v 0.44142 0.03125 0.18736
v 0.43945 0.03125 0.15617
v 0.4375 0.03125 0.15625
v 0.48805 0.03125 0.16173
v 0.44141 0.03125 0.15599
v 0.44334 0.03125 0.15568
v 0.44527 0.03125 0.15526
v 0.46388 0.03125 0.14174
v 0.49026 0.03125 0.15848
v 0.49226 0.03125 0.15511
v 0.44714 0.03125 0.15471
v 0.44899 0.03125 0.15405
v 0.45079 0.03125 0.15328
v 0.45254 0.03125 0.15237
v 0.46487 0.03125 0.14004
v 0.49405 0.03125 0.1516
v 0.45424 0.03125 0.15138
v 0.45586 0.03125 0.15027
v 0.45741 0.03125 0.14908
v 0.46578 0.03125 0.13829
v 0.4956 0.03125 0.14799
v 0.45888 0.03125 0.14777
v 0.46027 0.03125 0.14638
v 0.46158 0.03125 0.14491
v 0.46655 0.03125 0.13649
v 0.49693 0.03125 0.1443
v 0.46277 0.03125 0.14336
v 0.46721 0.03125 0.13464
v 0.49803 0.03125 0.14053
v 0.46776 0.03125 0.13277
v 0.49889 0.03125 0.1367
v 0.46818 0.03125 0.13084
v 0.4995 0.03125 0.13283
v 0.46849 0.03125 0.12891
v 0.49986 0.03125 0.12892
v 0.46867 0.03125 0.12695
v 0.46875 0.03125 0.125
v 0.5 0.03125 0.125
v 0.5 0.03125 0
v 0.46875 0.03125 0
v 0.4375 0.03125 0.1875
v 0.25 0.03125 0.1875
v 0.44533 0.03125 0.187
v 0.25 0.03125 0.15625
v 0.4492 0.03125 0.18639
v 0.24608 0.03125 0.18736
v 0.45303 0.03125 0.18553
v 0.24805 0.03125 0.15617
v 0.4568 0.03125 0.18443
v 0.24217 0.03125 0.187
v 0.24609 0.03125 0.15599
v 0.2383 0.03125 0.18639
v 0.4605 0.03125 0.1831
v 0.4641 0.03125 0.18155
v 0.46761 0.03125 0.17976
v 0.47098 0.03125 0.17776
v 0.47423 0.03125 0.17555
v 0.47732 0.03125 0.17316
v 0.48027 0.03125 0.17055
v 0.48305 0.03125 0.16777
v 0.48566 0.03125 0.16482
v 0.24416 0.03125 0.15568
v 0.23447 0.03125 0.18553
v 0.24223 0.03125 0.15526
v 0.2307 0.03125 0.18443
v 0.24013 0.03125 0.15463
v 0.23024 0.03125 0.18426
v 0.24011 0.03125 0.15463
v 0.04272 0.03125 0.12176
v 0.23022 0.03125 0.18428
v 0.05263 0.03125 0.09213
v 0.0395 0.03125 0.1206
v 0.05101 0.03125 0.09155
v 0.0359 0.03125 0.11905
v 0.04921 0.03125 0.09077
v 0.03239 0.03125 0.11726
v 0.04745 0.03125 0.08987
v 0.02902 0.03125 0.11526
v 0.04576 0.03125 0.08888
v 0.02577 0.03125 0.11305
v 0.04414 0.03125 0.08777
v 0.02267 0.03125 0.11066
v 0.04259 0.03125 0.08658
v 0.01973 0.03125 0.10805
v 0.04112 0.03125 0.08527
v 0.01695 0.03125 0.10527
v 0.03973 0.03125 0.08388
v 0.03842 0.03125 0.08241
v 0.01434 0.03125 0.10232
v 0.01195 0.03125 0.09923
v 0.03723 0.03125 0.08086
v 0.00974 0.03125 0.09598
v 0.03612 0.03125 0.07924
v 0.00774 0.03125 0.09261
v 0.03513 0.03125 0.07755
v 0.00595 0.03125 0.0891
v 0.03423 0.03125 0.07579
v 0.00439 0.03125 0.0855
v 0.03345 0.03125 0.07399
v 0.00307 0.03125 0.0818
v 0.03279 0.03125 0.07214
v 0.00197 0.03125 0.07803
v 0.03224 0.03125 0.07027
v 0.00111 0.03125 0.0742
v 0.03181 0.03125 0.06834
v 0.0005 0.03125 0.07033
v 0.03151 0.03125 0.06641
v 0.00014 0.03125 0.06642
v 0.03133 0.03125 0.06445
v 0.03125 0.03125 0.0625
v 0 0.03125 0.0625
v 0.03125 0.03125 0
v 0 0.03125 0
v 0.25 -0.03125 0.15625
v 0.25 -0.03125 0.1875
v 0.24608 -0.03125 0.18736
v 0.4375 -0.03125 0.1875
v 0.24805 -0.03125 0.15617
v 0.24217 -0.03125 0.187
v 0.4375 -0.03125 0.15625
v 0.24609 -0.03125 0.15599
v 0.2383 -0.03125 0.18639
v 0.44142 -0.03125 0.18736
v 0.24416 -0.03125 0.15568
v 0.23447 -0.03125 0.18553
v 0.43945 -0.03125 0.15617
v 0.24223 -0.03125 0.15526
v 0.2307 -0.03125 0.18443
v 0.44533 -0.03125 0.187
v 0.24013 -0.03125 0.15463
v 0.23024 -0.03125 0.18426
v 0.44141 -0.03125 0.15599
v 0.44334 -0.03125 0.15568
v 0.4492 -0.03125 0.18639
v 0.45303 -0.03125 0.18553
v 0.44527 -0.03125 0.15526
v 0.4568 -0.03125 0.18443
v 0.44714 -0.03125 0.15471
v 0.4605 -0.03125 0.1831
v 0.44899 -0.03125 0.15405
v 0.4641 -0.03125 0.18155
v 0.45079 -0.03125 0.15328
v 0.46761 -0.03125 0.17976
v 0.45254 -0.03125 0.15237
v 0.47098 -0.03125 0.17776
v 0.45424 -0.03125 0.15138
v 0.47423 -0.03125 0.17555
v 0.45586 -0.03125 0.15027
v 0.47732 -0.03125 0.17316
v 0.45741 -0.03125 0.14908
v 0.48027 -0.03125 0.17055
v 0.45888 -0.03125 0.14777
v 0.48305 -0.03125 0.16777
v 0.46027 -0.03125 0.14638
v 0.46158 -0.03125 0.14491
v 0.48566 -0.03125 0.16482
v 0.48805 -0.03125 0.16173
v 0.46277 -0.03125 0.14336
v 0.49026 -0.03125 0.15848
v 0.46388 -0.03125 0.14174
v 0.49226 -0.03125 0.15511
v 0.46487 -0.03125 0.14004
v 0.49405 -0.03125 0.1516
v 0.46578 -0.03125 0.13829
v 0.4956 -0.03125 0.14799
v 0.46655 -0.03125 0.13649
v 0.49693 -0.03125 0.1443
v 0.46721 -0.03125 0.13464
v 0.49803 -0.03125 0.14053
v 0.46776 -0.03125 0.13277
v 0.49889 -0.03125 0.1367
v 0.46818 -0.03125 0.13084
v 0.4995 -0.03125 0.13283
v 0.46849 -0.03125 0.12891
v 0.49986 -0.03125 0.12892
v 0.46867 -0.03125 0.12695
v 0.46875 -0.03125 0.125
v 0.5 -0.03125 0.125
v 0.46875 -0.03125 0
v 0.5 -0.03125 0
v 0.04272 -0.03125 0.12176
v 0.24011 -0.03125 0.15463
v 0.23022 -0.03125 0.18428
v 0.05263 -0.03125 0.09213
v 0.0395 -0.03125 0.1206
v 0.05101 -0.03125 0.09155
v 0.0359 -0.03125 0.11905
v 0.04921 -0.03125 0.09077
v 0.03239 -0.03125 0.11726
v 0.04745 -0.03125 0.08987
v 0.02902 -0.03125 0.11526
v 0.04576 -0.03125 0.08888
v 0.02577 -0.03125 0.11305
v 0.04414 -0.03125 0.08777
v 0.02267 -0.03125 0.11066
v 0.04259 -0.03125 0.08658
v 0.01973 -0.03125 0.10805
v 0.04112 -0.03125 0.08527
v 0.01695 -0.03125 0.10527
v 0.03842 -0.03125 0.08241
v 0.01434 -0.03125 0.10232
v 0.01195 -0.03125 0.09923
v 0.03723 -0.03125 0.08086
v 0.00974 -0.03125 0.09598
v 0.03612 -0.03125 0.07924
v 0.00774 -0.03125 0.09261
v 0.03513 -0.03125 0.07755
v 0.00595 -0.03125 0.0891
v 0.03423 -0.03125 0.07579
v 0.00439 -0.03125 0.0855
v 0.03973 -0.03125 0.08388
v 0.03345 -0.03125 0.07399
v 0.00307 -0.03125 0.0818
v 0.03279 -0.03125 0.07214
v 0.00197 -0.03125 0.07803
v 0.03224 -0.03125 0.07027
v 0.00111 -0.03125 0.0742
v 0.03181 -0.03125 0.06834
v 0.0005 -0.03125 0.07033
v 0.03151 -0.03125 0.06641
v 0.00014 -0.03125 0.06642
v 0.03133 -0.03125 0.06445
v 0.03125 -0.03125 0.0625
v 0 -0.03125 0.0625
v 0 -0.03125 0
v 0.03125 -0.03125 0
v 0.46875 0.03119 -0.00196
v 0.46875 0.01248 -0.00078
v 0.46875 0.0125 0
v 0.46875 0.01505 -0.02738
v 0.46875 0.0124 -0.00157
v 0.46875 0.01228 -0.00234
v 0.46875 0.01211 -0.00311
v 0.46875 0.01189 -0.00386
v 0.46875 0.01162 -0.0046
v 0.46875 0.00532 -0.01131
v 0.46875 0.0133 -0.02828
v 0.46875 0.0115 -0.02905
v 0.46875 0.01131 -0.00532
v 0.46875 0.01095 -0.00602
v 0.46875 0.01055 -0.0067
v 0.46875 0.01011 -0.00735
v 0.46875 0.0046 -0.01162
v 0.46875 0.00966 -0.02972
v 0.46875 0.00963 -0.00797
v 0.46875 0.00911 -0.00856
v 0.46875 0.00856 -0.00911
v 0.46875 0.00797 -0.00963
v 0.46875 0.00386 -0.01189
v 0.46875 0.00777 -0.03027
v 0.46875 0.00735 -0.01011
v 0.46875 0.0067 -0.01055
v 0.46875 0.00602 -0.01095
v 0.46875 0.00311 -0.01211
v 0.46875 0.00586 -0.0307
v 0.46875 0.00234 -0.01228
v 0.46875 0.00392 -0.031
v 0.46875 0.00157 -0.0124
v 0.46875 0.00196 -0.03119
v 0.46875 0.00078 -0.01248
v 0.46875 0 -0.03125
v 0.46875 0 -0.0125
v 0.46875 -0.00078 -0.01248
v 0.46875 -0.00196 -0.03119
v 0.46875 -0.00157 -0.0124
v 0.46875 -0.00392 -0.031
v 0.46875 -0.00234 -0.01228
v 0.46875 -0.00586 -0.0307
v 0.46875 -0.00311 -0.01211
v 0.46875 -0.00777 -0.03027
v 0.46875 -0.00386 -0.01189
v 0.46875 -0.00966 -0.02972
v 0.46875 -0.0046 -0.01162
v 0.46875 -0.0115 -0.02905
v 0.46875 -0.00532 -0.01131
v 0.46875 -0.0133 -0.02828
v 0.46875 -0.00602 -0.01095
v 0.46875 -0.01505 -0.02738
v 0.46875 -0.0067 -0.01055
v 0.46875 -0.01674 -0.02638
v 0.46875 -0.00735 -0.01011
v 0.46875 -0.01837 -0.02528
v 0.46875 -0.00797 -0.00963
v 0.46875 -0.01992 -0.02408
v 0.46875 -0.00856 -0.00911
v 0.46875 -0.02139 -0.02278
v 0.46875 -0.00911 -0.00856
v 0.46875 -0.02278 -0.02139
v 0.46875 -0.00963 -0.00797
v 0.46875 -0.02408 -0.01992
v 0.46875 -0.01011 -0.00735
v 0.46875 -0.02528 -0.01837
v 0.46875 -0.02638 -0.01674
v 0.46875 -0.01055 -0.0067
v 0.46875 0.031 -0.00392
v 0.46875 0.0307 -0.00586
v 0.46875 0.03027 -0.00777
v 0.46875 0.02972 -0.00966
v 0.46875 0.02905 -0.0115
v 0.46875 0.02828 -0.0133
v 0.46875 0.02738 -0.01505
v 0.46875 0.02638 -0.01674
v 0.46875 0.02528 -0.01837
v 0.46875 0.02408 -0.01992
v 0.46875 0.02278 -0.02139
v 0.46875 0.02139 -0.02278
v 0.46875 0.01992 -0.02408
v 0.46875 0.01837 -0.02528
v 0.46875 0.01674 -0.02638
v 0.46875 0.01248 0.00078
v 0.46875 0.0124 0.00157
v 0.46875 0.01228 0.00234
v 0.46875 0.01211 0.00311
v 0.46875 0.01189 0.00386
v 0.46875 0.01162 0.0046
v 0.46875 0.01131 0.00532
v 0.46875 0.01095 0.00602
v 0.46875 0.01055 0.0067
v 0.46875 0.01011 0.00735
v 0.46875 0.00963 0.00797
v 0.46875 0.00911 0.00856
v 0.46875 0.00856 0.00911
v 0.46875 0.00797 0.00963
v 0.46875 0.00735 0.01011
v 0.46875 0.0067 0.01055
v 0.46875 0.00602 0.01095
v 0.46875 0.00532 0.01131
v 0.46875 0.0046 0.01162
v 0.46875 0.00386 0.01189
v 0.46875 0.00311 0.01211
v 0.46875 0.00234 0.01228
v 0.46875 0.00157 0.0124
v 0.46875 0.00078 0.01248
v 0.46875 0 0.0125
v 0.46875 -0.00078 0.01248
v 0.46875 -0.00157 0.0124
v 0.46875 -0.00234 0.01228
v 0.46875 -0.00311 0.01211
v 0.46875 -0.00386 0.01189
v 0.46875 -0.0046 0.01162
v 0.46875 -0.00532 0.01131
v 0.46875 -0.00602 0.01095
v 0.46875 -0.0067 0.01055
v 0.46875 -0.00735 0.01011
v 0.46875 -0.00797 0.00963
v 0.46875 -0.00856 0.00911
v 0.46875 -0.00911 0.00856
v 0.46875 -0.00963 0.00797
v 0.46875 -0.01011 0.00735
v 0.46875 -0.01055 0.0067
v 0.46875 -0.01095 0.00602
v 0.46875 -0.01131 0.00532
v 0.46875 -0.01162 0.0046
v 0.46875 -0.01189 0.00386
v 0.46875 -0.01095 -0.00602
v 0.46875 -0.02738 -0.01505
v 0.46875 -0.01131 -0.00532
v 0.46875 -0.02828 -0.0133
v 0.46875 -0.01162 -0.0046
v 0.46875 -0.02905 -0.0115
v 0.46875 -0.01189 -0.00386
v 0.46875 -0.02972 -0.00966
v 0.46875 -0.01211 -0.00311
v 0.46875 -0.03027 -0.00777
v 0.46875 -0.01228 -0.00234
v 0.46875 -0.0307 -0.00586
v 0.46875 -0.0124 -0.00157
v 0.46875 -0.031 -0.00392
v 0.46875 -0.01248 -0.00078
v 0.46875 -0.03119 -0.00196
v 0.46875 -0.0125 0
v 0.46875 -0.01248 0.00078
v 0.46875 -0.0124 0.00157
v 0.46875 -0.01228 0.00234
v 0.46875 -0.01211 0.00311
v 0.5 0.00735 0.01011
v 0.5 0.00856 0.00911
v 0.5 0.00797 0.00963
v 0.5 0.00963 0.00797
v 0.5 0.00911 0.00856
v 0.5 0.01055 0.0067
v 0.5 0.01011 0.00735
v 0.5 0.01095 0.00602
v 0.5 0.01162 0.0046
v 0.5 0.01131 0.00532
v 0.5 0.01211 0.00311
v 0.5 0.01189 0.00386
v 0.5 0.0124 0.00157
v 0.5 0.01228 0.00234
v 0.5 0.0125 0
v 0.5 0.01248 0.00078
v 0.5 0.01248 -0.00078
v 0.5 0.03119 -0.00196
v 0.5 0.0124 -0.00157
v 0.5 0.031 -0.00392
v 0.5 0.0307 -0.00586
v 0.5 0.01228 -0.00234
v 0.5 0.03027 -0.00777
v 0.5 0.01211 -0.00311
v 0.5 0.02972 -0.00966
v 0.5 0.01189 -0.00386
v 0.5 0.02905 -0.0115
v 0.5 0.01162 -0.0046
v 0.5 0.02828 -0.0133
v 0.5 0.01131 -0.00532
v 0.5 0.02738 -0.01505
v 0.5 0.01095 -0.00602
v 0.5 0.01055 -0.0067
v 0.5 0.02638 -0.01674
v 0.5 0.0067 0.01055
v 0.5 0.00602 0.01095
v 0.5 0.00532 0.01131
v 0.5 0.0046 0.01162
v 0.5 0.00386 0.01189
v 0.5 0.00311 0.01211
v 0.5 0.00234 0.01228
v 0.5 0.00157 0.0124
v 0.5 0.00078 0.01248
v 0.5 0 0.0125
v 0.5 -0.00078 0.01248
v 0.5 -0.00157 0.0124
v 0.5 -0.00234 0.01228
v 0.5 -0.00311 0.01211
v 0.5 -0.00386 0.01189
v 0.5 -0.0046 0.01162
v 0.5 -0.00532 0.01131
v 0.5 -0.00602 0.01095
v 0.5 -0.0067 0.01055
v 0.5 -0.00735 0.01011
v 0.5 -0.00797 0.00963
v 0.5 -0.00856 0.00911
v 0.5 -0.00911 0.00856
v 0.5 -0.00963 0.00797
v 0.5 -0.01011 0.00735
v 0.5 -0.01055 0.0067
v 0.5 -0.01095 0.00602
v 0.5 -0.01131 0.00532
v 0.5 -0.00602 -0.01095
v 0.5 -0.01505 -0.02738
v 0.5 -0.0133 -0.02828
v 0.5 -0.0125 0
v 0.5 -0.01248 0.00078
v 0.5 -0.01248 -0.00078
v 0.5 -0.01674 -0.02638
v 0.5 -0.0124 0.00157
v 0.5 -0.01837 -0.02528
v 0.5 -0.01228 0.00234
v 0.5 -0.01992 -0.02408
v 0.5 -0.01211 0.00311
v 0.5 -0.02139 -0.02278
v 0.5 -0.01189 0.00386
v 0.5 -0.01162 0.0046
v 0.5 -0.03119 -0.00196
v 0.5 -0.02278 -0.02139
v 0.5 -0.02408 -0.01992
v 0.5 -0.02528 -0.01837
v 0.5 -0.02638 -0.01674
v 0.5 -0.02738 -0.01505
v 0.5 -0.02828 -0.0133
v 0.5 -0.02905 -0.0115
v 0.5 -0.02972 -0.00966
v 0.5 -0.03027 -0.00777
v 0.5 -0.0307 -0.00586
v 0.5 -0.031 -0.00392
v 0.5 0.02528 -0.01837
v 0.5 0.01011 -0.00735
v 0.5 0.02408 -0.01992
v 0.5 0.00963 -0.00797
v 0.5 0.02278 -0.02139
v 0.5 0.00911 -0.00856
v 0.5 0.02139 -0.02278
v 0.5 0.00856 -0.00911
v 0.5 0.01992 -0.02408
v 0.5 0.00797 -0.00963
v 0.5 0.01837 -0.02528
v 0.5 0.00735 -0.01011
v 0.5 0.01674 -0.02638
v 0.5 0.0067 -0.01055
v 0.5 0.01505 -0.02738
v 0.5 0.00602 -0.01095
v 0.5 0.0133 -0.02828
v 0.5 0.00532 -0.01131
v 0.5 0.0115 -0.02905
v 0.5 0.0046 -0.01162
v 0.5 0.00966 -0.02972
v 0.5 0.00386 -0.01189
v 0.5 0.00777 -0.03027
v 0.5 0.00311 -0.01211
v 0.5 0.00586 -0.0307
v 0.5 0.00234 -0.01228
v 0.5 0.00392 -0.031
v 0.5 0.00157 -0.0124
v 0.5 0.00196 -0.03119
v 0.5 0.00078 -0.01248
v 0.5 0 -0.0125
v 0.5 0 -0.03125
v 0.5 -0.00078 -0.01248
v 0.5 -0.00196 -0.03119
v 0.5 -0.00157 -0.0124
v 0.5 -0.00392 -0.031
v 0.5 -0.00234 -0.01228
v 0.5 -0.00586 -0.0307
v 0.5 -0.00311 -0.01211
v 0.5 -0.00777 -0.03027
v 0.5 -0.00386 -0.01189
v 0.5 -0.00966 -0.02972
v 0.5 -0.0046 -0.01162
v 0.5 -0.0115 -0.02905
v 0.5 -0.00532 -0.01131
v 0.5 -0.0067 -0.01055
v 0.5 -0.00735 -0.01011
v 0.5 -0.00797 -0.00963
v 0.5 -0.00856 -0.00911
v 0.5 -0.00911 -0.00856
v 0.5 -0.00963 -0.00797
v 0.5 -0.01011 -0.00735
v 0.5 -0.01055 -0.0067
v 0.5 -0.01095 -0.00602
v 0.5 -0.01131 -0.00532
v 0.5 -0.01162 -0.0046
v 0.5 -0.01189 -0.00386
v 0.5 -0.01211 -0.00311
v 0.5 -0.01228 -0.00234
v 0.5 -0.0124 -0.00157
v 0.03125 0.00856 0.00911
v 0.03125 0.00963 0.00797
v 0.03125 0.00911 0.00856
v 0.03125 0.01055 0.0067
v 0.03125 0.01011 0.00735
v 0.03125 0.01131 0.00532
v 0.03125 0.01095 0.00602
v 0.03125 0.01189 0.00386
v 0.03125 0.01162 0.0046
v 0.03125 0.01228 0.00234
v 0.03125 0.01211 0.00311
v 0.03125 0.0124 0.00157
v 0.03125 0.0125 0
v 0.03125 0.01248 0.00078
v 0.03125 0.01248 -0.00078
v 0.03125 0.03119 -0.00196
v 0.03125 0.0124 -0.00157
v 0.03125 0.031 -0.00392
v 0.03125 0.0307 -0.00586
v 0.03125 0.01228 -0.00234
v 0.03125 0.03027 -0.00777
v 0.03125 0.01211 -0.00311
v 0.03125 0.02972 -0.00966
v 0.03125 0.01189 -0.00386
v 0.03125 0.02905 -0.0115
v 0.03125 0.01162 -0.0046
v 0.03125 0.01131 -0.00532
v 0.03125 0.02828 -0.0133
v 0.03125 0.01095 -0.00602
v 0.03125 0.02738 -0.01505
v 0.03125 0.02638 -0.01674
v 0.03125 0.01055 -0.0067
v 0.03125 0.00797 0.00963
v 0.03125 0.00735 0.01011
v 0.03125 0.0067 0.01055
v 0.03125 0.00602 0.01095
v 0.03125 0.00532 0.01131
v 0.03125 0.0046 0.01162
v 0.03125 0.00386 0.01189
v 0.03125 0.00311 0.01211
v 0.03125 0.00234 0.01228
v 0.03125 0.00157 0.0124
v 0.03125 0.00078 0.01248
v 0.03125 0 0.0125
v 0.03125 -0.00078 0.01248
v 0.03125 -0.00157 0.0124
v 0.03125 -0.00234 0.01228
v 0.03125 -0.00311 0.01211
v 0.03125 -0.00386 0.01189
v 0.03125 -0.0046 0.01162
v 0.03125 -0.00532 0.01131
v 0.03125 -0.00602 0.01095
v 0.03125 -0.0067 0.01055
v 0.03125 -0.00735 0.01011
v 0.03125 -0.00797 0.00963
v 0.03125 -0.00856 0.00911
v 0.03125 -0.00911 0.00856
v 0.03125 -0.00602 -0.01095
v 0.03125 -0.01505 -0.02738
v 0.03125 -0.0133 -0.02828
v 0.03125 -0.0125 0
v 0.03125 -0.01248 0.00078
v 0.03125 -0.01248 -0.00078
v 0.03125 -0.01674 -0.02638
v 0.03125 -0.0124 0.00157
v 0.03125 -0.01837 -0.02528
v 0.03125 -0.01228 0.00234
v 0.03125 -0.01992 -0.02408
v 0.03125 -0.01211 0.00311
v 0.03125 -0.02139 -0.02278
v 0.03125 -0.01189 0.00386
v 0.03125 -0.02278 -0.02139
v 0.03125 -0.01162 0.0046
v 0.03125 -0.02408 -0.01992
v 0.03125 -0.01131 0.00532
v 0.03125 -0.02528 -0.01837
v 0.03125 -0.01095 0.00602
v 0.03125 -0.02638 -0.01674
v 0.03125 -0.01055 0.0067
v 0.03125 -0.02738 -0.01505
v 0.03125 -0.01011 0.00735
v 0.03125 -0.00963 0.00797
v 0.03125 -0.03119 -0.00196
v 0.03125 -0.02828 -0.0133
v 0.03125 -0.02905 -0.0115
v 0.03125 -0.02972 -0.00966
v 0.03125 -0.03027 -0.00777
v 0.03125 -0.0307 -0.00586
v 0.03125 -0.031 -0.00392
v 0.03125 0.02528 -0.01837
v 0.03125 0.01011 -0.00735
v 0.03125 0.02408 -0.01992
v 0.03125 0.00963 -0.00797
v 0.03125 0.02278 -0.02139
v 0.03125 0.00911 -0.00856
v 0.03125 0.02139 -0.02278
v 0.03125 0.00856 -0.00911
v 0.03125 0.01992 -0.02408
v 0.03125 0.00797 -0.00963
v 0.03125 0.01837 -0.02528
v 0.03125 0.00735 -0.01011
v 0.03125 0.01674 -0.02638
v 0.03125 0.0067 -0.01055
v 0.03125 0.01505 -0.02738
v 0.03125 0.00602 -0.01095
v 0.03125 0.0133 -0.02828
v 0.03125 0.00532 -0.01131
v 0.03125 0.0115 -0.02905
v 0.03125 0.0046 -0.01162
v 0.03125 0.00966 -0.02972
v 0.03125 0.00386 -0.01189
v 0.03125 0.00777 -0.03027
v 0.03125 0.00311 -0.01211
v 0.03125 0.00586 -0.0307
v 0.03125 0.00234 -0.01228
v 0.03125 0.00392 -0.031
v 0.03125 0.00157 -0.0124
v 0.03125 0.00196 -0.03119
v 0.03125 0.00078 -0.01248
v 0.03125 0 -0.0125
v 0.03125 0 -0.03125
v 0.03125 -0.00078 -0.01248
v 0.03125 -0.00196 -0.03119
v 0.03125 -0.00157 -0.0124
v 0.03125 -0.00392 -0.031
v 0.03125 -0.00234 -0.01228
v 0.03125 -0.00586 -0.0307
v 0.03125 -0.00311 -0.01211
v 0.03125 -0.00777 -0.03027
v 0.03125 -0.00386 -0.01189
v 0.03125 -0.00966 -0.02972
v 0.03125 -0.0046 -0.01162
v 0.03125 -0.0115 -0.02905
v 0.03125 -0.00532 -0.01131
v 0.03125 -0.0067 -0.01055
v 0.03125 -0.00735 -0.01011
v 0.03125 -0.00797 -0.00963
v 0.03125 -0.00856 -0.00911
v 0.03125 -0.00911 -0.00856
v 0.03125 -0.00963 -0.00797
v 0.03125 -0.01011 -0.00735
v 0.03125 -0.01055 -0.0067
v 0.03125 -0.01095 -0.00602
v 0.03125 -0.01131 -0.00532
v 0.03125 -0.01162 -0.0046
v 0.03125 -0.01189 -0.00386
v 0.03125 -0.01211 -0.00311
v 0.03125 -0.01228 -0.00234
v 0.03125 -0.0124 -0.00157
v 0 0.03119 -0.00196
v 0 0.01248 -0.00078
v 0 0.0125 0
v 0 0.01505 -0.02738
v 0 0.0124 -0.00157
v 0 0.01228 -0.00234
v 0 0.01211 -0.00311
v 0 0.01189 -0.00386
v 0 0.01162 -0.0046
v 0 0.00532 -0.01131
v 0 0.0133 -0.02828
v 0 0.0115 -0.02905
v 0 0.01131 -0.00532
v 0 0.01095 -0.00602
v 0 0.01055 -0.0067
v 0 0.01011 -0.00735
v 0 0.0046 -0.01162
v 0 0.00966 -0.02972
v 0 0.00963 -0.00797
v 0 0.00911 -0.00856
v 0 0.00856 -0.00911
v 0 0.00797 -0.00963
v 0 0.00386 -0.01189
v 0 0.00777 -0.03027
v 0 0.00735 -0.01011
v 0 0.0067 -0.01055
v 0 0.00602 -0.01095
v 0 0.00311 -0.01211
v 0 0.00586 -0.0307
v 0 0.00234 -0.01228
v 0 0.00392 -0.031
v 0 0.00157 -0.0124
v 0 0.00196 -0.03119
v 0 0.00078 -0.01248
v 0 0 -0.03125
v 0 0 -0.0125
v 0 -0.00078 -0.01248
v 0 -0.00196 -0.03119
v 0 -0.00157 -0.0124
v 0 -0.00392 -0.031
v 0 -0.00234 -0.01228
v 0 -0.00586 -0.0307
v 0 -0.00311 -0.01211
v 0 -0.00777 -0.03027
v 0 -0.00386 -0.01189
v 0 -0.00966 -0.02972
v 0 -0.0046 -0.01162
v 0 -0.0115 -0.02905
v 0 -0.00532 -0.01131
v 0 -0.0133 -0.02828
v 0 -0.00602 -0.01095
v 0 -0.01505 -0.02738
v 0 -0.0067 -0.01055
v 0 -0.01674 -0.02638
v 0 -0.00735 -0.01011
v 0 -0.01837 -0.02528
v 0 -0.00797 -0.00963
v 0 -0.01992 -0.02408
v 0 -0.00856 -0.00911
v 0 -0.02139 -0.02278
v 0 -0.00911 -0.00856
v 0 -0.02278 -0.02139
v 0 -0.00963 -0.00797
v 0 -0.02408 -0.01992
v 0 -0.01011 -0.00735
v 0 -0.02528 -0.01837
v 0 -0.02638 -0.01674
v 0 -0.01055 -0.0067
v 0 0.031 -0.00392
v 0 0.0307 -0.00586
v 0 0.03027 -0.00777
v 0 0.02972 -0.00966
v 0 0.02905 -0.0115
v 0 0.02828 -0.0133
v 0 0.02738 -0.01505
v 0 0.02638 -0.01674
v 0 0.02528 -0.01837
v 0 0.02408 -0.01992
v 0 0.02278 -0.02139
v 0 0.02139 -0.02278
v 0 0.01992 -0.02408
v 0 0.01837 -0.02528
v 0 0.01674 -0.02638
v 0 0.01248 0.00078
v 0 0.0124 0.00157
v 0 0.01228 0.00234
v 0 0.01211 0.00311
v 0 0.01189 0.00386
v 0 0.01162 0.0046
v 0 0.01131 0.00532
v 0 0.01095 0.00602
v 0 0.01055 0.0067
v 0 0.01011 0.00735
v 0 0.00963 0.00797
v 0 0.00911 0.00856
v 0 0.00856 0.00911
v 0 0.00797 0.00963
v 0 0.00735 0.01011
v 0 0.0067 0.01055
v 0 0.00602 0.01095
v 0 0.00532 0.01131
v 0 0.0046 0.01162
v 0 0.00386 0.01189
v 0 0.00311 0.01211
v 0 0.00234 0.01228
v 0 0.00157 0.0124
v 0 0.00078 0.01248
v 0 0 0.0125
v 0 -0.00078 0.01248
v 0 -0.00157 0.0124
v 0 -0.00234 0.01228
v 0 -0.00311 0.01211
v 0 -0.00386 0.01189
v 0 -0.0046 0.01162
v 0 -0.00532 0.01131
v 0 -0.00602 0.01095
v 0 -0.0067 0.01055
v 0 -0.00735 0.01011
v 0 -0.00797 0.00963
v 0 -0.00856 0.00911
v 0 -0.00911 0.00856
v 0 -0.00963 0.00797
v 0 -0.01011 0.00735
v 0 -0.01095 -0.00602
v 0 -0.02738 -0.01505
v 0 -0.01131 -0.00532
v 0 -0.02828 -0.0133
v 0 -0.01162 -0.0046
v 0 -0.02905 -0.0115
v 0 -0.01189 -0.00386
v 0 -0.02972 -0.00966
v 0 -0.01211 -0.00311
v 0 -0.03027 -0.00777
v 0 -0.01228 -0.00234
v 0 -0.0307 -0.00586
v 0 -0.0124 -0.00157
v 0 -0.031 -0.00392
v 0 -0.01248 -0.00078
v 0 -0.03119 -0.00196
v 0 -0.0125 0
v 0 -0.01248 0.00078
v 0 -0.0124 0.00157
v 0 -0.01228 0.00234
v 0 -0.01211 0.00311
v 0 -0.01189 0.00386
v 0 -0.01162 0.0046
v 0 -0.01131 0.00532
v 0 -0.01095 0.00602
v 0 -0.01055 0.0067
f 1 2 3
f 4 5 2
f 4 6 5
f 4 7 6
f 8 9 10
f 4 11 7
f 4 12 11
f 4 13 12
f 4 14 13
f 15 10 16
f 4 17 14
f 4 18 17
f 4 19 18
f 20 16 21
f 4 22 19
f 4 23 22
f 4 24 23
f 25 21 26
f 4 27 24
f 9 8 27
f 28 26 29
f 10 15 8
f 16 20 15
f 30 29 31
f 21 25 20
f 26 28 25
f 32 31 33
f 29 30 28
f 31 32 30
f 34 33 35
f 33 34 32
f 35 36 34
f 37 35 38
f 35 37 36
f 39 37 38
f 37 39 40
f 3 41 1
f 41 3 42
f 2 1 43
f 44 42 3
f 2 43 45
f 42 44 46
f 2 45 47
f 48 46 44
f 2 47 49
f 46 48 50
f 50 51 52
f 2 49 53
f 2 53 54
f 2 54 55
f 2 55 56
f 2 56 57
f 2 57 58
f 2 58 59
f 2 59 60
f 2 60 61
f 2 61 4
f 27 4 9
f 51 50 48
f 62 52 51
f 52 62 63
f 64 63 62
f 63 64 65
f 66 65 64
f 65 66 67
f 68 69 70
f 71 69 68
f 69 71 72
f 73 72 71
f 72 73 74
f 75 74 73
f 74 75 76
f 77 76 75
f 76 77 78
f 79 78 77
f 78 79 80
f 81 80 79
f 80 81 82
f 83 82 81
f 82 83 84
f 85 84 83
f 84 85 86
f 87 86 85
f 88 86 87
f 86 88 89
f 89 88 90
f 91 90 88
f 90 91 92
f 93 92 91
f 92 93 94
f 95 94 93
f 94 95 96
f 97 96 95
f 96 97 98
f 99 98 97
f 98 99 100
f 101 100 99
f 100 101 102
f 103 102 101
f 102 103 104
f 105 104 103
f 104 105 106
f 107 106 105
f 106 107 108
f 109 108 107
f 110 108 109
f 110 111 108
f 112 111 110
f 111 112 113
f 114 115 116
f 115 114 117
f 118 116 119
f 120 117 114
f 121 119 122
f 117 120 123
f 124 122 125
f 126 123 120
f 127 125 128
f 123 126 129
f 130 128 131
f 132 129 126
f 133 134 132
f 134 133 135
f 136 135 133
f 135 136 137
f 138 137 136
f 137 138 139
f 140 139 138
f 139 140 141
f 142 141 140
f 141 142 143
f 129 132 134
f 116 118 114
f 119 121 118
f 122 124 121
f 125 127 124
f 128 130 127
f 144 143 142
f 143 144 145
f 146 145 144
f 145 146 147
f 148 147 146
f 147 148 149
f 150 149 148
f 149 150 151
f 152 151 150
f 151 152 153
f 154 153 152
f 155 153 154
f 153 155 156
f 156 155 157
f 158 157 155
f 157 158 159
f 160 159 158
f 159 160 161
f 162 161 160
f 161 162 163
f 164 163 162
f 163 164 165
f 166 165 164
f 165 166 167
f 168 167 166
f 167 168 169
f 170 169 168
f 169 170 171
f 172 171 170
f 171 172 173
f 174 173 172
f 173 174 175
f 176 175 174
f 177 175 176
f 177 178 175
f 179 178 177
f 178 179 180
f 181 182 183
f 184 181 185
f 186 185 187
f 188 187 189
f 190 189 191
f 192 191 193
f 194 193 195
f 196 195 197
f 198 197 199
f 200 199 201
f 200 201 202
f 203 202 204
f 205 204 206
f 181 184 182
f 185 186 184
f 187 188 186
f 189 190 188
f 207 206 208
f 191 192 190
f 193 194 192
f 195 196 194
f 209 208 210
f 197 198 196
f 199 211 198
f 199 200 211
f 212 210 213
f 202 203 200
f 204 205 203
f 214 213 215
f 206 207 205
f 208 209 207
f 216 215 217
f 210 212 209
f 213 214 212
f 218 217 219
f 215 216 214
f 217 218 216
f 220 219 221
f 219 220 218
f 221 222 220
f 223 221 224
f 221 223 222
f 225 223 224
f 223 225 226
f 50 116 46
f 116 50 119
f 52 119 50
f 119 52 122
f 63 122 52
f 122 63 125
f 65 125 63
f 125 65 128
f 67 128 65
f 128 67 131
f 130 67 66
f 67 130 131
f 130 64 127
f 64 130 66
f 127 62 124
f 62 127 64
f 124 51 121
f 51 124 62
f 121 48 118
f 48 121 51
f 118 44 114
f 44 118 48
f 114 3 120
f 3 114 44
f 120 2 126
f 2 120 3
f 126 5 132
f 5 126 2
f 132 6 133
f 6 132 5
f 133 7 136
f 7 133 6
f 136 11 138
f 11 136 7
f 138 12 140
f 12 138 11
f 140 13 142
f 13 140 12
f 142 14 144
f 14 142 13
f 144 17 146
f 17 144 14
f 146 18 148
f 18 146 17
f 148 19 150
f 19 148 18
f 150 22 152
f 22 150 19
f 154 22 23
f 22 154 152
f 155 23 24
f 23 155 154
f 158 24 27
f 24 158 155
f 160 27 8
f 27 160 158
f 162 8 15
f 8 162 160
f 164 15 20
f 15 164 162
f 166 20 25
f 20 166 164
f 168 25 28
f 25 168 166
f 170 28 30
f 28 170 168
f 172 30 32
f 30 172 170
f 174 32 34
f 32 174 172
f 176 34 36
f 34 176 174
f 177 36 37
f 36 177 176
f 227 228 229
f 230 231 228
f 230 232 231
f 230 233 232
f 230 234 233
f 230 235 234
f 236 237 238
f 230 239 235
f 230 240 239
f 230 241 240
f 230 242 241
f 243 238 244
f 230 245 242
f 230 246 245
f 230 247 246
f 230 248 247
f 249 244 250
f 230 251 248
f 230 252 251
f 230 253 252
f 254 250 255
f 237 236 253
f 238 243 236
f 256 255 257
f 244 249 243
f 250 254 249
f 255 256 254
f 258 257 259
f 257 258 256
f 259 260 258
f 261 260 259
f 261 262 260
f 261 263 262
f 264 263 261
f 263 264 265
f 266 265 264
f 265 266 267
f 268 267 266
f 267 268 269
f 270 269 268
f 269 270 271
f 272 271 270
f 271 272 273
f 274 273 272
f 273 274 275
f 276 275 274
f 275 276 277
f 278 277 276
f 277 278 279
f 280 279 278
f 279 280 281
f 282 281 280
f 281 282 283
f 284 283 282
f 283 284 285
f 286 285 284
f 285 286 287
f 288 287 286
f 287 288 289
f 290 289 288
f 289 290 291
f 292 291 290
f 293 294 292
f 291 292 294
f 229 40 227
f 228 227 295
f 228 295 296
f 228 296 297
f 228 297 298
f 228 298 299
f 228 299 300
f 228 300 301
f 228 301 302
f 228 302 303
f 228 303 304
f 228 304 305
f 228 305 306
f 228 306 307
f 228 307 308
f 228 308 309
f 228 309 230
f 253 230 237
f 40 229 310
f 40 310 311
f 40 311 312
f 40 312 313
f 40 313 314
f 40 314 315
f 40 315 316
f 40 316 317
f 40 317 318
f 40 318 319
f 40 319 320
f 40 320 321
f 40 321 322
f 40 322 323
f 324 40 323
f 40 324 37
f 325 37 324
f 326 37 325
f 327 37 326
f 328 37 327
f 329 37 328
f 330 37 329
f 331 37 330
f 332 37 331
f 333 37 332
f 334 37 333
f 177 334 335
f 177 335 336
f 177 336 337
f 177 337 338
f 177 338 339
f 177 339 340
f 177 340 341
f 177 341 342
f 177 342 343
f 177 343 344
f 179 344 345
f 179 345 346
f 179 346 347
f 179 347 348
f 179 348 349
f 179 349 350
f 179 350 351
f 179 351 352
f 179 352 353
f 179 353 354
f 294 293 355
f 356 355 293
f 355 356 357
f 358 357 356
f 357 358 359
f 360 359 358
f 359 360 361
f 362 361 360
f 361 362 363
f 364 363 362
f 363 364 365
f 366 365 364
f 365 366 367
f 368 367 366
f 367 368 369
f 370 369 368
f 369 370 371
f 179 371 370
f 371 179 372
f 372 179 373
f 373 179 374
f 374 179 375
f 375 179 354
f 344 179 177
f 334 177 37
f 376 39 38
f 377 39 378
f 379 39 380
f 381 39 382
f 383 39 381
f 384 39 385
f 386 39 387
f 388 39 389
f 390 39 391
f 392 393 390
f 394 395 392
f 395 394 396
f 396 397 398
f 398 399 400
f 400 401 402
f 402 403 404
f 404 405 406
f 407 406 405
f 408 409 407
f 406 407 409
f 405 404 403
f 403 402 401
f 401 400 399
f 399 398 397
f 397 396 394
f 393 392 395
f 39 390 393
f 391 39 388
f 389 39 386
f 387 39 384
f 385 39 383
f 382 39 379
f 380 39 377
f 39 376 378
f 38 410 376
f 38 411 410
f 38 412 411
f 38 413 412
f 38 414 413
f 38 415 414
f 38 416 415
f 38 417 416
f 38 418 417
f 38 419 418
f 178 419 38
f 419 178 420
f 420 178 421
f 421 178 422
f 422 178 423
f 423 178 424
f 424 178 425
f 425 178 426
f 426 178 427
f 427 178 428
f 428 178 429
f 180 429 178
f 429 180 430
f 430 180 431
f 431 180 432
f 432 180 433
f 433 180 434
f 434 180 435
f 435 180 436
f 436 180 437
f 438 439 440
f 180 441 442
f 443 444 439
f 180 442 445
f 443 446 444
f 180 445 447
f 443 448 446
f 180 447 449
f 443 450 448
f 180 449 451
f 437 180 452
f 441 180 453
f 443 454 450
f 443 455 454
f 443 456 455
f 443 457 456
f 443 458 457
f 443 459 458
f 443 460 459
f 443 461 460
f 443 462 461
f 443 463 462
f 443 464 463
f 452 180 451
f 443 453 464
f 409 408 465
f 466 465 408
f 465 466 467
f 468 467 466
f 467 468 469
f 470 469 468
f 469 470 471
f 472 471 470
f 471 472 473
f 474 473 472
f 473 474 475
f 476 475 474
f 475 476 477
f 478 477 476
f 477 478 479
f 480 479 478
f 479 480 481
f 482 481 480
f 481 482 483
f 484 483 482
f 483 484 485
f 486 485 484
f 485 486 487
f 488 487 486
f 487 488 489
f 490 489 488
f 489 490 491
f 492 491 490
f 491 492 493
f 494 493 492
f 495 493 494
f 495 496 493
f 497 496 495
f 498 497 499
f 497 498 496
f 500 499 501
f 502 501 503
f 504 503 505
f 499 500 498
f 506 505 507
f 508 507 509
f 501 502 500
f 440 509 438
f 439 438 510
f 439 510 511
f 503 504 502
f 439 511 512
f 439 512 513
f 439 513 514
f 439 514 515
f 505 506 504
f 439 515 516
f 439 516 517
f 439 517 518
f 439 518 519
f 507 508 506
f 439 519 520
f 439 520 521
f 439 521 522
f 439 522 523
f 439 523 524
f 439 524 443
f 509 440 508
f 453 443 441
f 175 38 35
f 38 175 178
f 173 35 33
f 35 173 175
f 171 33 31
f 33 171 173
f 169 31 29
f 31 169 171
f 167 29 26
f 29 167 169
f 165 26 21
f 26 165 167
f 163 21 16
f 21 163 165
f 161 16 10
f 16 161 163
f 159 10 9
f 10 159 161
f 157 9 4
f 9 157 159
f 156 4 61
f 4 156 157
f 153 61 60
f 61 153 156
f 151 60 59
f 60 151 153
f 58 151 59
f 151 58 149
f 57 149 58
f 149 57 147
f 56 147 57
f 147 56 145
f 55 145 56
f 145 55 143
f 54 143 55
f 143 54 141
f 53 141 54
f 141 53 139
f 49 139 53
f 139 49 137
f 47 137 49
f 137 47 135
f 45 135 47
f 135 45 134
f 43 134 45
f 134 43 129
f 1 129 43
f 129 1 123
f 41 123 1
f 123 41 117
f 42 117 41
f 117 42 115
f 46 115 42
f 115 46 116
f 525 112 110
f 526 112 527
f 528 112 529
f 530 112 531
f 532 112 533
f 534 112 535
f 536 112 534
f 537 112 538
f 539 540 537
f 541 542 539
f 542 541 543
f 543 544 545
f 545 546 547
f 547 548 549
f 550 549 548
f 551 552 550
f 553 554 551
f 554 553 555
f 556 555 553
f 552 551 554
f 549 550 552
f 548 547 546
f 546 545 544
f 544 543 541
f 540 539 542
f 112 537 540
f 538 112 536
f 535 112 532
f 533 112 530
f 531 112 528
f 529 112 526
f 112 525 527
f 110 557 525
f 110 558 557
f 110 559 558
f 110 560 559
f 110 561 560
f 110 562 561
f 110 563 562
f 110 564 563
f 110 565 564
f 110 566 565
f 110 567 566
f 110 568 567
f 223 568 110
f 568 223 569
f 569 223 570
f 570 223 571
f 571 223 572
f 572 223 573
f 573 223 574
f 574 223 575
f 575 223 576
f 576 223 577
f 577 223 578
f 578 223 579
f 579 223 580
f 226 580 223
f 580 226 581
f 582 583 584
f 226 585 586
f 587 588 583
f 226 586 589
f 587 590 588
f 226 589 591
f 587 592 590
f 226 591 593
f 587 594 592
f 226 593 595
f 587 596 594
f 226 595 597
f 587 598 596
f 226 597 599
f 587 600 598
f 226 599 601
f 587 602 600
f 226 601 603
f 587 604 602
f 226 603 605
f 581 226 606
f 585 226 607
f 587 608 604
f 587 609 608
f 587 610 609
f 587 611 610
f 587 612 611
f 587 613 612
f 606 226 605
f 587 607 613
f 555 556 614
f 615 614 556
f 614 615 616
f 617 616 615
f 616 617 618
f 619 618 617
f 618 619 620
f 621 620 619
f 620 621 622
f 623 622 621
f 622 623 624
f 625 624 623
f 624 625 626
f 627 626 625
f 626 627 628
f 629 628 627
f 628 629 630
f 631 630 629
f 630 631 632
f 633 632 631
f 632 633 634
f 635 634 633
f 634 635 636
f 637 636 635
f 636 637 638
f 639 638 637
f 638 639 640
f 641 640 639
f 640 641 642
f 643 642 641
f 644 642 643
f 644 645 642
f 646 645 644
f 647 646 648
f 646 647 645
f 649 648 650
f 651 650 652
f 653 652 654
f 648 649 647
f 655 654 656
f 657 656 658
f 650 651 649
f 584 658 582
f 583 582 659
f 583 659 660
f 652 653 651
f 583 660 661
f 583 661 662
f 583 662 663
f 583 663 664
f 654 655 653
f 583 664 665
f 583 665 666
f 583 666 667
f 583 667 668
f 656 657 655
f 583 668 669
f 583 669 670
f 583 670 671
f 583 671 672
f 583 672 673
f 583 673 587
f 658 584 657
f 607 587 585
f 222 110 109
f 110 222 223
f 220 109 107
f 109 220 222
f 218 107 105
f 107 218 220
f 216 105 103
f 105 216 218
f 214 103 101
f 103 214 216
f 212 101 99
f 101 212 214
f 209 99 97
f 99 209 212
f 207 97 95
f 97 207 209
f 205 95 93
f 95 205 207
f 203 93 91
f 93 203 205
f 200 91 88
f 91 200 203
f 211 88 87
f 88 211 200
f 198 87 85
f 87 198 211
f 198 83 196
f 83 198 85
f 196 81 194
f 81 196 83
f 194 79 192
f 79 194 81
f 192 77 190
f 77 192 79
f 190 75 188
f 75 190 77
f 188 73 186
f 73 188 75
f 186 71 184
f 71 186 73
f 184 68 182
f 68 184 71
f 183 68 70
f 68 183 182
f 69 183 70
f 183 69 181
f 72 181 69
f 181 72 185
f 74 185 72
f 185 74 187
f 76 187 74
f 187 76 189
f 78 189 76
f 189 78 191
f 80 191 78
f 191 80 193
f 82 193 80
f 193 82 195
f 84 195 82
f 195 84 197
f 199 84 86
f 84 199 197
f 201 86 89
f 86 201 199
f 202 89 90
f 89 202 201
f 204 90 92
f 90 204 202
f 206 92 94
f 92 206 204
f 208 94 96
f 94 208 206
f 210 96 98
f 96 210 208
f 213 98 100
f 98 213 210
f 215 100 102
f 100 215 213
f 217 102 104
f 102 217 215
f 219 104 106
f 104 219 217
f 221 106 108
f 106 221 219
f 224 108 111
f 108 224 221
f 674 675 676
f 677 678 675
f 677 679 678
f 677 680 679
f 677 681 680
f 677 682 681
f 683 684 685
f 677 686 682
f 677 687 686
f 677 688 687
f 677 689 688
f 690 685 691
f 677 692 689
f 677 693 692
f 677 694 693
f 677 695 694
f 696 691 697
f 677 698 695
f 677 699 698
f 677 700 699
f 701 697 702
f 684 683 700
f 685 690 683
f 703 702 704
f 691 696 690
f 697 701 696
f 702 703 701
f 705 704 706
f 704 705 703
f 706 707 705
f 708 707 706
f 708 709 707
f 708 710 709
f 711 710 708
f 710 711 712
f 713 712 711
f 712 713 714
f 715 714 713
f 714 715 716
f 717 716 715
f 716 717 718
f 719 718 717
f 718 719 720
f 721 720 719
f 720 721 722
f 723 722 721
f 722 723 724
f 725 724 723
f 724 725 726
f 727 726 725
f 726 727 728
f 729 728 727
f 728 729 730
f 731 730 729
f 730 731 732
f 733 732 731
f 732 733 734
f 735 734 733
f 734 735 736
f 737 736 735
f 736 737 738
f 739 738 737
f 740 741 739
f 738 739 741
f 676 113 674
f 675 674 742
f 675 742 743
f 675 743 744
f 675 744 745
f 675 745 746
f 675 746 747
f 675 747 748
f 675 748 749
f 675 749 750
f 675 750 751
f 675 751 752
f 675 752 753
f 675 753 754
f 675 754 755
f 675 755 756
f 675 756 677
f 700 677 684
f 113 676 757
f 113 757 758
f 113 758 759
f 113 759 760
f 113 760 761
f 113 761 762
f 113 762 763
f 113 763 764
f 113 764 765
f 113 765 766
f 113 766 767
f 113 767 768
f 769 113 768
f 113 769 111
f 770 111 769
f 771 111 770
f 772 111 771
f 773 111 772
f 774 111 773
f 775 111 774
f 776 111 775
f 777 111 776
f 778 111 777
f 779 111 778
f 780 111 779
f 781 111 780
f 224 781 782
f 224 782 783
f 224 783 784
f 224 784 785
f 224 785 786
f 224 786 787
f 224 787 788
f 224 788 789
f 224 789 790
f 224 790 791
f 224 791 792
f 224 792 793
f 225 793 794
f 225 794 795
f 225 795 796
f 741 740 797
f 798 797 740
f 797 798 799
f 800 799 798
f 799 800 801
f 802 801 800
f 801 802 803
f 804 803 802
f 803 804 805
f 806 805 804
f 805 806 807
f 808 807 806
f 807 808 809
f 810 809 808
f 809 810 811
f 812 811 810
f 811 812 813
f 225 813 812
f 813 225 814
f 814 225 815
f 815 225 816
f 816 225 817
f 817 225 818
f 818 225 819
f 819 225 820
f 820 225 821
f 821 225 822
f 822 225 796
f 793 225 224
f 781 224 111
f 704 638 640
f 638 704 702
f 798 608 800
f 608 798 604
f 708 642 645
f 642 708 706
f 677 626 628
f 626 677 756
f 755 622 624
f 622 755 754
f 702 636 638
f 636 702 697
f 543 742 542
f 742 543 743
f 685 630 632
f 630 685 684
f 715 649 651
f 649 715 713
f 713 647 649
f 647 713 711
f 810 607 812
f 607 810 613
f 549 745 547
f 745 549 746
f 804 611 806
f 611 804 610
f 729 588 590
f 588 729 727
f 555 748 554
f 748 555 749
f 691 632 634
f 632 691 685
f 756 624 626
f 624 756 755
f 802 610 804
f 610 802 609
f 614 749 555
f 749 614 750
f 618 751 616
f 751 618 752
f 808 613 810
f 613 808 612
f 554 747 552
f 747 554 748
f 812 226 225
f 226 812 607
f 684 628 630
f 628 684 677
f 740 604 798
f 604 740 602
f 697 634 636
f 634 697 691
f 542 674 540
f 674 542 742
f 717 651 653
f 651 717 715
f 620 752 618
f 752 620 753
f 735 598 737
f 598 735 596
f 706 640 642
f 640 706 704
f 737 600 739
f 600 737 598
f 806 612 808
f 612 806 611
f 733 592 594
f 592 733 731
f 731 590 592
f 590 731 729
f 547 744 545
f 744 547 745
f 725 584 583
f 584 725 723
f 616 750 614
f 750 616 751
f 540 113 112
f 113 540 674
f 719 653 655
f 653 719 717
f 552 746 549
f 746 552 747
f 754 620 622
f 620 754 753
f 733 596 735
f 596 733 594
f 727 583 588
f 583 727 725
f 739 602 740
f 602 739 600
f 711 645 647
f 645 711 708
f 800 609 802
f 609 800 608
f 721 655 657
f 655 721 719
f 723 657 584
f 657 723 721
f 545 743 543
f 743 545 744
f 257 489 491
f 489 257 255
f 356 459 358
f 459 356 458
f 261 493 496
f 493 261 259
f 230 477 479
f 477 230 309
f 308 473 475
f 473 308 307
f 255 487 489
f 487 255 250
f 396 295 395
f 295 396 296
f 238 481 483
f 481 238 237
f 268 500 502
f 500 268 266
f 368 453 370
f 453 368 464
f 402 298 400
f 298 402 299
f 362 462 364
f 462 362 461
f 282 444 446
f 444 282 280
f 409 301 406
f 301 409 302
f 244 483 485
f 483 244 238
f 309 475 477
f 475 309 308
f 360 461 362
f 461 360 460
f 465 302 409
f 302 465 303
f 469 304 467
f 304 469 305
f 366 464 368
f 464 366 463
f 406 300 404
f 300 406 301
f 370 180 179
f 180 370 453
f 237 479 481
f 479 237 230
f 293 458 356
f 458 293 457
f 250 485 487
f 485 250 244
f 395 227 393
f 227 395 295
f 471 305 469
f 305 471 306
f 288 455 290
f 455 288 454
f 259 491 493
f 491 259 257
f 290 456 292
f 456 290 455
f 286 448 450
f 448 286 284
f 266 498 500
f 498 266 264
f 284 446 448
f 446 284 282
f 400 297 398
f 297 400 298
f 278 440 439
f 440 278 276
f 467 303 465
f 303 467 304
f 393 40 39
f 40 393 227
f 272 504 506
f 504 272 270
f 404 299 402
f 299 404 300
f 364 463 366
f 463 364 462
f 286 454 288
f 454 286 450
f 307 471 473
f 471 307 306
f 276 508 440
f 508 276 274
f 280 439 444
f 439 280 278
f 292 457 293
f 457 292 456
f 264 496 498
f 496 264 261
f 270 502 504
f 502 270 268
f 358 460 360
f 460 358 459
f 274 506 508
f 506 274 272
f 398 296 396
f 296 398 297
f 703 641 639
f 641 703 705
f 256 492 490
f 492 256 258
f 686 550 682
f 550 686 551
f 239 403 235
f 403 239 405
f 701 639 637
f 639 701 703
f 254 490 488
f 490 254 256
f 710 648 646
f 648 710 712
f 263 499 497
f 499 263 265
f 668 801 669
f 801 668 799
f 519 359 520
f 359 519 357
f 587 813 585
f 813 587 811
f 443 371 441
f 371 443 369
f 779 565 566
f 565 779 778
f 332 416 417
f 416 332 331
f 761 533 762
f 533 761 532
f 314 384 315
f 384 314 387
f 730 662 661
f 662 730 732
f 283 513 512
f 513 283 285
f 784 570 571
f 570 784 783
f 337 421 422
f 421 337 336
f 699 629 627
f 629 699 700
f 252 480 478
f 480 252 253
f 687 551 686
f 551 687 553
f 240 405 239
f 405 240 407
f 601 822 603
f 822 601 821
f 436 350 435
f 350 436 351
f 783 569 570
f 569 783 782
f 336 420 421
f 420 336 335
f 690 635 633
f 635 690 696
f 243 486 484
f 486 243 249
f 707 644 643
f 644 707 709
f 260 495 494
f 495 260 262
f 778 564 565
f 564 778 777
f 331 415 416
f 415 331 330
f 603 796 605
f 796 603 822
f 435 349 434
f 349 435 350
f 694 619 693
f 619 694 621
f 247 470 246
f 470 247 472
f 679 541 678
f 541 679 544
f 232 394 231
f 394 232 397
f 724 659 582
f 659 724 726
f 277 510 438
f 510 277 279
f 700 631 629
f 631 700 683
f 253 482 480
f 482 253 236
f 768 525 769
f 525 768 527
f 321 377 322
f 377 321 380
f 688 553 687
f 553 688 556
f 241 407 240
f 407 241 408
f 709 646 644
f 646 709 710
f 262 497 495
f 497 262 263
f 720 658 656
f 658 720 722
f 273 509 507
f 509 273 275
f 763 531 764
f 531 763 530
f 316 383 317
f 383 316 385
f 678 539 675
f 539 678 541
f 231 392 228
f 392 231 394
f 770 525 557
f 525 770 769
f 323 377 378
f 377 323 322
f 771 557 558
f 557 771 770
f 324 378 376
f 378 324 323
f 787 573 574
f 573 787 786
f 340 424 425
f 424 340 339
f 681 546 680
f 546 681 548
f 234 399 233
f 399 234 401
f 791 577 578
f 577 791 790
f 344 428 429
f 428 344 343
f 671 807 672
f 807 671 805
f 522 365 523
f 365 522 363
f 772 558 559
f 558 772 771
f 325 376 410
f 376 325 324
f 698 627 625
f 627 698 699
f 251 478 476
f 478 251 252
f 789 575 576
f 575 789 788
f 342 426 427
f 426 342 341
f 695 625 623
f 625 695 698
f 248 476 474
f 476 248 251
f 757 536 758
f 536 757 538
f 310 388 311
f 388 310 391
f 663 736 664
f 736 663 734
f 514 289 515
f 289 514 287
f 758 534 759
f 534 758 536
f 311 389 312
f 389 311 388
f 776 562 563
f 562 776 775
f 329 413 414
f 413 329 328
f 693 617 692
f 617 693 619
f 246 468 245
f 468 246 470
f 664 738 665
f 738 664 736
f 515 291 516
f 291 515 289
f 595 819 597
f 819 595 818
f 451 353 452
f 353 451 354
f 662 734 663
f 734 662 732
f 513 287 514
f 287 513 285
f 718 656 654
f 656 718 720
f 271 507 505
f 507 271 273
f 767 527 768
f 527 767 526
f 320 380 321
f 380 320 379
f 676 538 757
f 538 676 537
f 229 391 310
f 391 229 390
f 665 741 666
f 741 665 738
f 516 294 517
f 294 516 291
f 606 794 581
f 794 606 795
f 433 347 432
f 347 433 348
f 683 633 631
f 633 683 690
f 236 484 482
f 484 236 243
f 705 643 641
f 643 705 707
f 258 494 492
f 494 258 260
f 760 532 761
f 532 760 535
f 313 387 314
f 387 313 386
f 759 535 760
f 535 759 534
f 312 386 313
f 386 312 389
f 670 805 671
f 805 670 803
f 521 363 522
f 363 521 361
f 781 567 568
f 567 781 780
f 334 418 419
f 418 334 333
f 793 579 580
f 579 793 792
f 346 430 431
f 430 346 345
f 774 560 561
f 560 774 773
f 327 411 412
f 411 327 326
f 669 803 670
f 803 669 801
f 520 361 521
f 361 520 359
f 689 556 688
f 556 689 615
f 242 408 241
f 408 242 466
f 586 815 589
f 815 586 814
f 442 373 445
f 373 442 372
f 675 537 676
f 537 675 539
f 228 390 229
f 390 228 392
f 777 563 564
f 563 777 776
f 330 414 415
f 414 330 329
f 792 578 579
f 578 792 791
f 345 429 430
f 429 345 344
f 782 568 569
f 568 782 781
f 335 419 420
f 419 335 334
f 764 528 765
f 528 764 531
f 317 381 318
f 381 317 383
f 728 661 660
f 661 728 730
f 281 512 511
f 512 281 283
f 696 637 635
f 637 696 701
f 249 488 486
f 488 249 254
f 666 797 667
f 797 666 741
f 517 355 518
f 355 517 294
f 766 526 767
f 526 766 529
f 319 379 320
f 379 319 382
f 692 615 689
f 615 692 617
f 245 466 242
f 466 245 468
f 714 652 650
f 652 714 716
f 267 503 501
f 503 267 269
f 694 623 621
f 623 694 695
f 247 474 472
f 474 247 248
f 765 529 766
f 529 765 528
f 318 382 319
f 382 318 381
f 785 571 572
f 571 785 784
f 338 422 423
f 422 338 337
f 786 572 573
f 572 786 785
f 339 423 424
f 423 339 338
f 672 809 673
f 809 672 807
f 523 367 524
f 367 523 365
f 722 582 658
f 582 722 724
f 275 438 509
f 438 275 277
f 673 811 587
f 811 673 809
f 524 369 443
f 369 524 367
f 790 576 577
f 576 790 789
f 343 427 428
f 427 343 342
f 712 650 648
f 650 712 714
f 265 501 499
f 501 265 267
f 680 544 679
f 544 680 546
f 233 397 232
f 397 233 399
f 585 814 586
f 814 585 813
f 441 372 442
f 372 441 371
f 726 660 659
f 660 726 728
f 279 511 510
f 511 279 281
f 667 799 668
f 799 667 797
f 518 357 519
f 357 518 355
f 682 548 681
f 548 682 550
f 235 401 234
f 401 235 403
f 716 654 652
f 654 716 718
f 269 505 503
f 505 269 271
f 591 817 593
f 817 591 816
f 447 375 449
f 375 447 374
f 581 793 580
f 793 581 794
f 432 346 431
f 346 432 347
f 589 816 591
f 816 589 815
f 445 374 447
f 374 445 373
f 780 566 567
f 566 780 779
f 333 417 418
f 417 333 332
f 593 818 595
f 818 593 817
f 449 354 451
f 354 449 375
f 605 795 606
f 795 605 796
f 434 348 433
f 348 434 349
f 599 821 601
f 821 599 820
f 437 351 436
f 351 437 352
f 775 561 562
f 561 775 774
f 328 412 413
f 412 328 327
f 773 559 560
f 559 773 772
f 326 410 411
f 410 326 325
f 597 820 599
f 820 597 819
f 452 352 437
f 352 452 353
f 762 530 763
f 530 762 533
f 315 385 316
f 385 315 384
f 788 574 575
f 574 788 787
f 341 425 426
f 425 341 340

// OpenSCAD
// file: MMlib/MMlib/MMlib/circle_strip.scad
//#####################################
// circle_strip
// (c) 2021 - Roie R. Black
//=====================================
$fn = 100;


module circle_strip(r=3, t=0.5) {
  difference() {
    circle(r);
    circle(r-t);
  }
}

circular_strip();
// file: MMlib/MMlib/circular_arc_strip.scad
//#####################################
// circular_arc_strip
// (c) 2021 - Roie R. Black
//=====================================
$fn = 100;
use <MMlib/circle_strip.scad>


module circular_arc_strip(
    r=3,
    start_angle=0, end_angle=270,
    t=0.5
  ) {
  dang = (end_angle-start_angle)/4;
  a0 = start_angle;
  a1 = a0 + dang;
  a2 = a1 + dang;
  a3 = a2 + dang;
  a4 = a3 + dang;
  pr = r * sqrt(2) + 1;
  intersection() {
    polygon([
      [0,0],
      [pr*cos(a0), pr*sin(a0)],
      [pr*cos(a1), pr*sin(a1)],
      [pr*cos(a2), pr*sin(a2)],
      [pr*cos(a3), pr*sin(a3)],
      [pr*cos(a4), pr*sin(a4)],
      [0,0]
    ]);
    circle_strip(r,t);
  }
}

circular_arc_strip();
// file: colors.scad
// colors.scad
// Credit: David Powell, OpenSCAN Forum



//group ABS_<colorname>
//	discription  common 3d printer ABS filament colors
// actual colours may need some tweaking

ABS_Nature =[0.8,0.8,0.8,0.8];
ABS_White =[0.9,0.9,0.9,1];
ABS_Black =[0.1,0.1,0.1,1];
ABS_Red = [0.7,0,0,1];
ABS_Green = [0,0.7,0,1];
ABS_Blue = [0,0,0.7,1];
ABS_Orange =[0.8,0.4,0,1];
ABS_Purple =[0.7,0,0.7,1];
ABS_Brown =[0.6,0.2,0.2,1];
ABS_Glow_Blue =[0,0,.99,1];
ABS_Flurescence_Green =[0,1,0,1];
ABS_Flurescence_Yellow = [0.9,0.9,0,1];

//group PLA_<colorname>
//	discription  common 3d printer PLA filament colors
// actual colours may need some tweaking

PLA_Nature =[0.8,0.8,0.8,0.8];
PLA_White =[0.9,0.9,0.9,1];
PLA_Black =[0.1,0.1,0.1,1];
PLA_Red = [0.7,0,0,1];
PLA_Green = [0,0.7,0,1];
PLA_Blue = [0,0,0.7,1];
PLA_Orange =[0.8,0.4,0,1];
PLA_Purple =[0.7,0,0.7,1];
PLA_Brown =[0.6,0.2,0.2,1];
PLA_Glow_Blue =[0,0,.99,1];
PLA_Flurescence_Green =[0,1,0,1];
PLA_Flurescence_Yellow = [0.9,0.9,0,1];

//group ANODIZED_<colorname>
//	discription  common aluminium anodized colors
// these don't seem to follow normal color tables as the process
// produces a color change difference to the named color
// dew to base metal
// actual colours may need some tweaking

ANODIZED_Red =[0.7,0,0,1];
ANODIZED_Gold =[0.8,0.8,0.0,1];
ANODIZED_Black =[0.1,0.1,0.1,1];
ANODIZED_Blue =[0,0,0.7,1];
ANODIZED_Green =[0,0.5,0,1];
ANODIZED_Gray =[0.4,0.4,0.4,1];
ANODIZED_Dark_Blue =[0,0.2,0.6,1];
ANODIZED_Lime_Green =[0,0.8,0,1];
ANODIZED_Purple =[0.5,0,0.7,1];		//more blue than purple
ANODIZED_Light_Blue =[0.4,0.4,1,1];
ANODIZED_Pink =[0.7,0,0.7,1];		//more purlpe than pink
ANODIZED_Orange =[0.9,0.5,0,1];
ANODIZED_Scandia_Gold =[0.9,0.6,0.3,1];
ANODIZED_Copper =[0.7,0.5,0,1];		//more brown than copper
ANODIZED_Clear =[0.7,0.7,0.9,1];	//natural aluminium color
ANODIZED_Light_Bronze =[0.4,0.4,0.3,1]; //more silver than bronze
ANODIZED_Gold_Nickel =[0.8,0.8,0.6,1];
ANODIZED_Brush_Nickel =[0.8,0.8,0.7,1];

//group METAL_<typename>
//	discription common metal colors
// colors need tweaking

METAL_Aluminium = [0.7,0.7,0.8,1];
METAL_Brass = [0.88,0.78,0.5,1];
METAL_Copper = [0.9,0.6,0.5,1];
METAL_Steel = [0.9,0.9,0.8,1];
METAL_Stainless = [0.8,0.8,0.7,1];
METAL_Titanium = [0.7,0.7,0.6,1];
METAL_Bronze = [0.9,0.4,0.4,1];
METAL_Gold = [0.9,0.9,0.0,1];
METAL_Silver = [0.8,0.8,0.8,1];
METAL_Iron = [0.6,0.6,0.6,1];

// group WOOD_<typename>
//	discription common wood colors
// probabaly wrong

WOOD_Oak = [0.4,0.2,0.2,1];
WOOD_Birch = [0.8,0.8,0.4,1];
WOOD_Red = [0.7,0.3,0.3,1];
WOOD_pine = [0.8,0.8,0.4,1];
WOOD_Beach = [0.8,0.6,0.3,1];
WOOD_Spruce = [0.8,0.8,0.7,1];
WOOD_Balsa = [0.95,0.86,0.73];

// group GLASS_<color>
//	discription common glass colors
// needs tweaking

GLASS_Clear = [0.8,0.8,0.8,0.2];
GLASS_Red = [0.8,0,0,0.4];
GLASS_Green = [0,0.8,0,.4];
GLASS_Blue = [0,0,0.8,.4];
GLASS_Brown = [0.5,0.3,0.1,.4];

CONCRETE = [210/255, 209/255, 205/255];
// file: MMlib/prop_bearing_2D.scad
//######################################
// prop_bearing_2D.scad
// (c) Roie R. Black
//**************************************
use <MMlib/circular_arc_strip.scad>
$fn=100;

module prop_bearing_2D(
  length = 0.4,         // prop to rear
  height = 0.15,         // top to prop-shaft
  front_height = 3/64,  // nose height
  top_length = 0.2,     // top flat length
  thickness = 1/64      // material thickness
) {
  bend_radius = 2 * thickness;

  // geometry calculations
  d = height - bend_radius;
  ky = d - front_height;
  kx = length - 2 * bend_radius - top_length;
  b = sqrt(kx*kx + ky*ky);
  alpha = atan2(kx,ky);
  echo(b,d,kx,ky,alpha,thickness);

  // locate bend centers
  p1 = [2 * thickness, front_height];
  p2 = p1 + [kx,ky];
  p3 = [length - 2 * thickness,d];

  // front flat
  square([thickness,front_height]);

  // first bend at p1
  translate(p1) circular_arc_strip(bend_radius,180-alpha,180,thickness);

  // sloped front flat
  translate(p1 + [-bend_radius * cos(alpha), bend_radius*sin(alpha)])
    rotate(-alpha)
      square([thickness, b]);

  // second bend at p2
  translate(p2) circular_arc_strip(bend_radius, 90,180-alpha,thickness);

  // top flat
  translate([p2.x,p2.y + thickness]) square([top_length,thickness]);

  // third bend at p3
  translate(p3) circular_arc_strip(bend_radius, 0,90,thickness);
  // segment 5 - top
  // back flat
  translate([length - thickness,0])
    square([thickness,d]);
}

//---------------------------------------
// debug display

prop_bearing_2D();
// file: thrust_bearing_data.scad
//#####################################
// thrust_bearing_data.scad
// (c) 2021 by Roie R. Black
//=====================================
include <colors.scad>

thickness = 1/32;
length = 1/2;
height = 3/16;
width = 1/16;
front_height = height/3;
top_length = 3/16;
wire_size = 0.025;


thrust_bearing_color = METAL_Aluminium;
density = 168.77;
// main file
//#####################################
// thrust-bearing.scad
// (c) 2021 - Roie R. Black
//=====================================
include <thrust_bearing_data.scad>

use <MMlib/prop_bearing_2D.scad>
$fn=100;

module thrust_bearing() {
  color(thrust_bearing_color)
    difference() {
      union() {
        translate([0,width/2,0])
          rotate([90,0,0])
            linear_extrude(width)
              prop_bearing_2D(
                length,
                height,
                front_height,
                top_length,
                thickness
              );
        // front lower cap
        rotate([0,90,0])cylinder(r=width/2,h=thickness);
        // rear cap
        translate([length-thickness,0,0])
          rotate([0,90,0])
            cylinder(r=width/2, h=thickness);
      }
      translate([-0.1,0,0])
        rotate([0,90,0])
          cylinder(r=wire_size/2,length + 0.2);
    }
}

thrust_bearing();
